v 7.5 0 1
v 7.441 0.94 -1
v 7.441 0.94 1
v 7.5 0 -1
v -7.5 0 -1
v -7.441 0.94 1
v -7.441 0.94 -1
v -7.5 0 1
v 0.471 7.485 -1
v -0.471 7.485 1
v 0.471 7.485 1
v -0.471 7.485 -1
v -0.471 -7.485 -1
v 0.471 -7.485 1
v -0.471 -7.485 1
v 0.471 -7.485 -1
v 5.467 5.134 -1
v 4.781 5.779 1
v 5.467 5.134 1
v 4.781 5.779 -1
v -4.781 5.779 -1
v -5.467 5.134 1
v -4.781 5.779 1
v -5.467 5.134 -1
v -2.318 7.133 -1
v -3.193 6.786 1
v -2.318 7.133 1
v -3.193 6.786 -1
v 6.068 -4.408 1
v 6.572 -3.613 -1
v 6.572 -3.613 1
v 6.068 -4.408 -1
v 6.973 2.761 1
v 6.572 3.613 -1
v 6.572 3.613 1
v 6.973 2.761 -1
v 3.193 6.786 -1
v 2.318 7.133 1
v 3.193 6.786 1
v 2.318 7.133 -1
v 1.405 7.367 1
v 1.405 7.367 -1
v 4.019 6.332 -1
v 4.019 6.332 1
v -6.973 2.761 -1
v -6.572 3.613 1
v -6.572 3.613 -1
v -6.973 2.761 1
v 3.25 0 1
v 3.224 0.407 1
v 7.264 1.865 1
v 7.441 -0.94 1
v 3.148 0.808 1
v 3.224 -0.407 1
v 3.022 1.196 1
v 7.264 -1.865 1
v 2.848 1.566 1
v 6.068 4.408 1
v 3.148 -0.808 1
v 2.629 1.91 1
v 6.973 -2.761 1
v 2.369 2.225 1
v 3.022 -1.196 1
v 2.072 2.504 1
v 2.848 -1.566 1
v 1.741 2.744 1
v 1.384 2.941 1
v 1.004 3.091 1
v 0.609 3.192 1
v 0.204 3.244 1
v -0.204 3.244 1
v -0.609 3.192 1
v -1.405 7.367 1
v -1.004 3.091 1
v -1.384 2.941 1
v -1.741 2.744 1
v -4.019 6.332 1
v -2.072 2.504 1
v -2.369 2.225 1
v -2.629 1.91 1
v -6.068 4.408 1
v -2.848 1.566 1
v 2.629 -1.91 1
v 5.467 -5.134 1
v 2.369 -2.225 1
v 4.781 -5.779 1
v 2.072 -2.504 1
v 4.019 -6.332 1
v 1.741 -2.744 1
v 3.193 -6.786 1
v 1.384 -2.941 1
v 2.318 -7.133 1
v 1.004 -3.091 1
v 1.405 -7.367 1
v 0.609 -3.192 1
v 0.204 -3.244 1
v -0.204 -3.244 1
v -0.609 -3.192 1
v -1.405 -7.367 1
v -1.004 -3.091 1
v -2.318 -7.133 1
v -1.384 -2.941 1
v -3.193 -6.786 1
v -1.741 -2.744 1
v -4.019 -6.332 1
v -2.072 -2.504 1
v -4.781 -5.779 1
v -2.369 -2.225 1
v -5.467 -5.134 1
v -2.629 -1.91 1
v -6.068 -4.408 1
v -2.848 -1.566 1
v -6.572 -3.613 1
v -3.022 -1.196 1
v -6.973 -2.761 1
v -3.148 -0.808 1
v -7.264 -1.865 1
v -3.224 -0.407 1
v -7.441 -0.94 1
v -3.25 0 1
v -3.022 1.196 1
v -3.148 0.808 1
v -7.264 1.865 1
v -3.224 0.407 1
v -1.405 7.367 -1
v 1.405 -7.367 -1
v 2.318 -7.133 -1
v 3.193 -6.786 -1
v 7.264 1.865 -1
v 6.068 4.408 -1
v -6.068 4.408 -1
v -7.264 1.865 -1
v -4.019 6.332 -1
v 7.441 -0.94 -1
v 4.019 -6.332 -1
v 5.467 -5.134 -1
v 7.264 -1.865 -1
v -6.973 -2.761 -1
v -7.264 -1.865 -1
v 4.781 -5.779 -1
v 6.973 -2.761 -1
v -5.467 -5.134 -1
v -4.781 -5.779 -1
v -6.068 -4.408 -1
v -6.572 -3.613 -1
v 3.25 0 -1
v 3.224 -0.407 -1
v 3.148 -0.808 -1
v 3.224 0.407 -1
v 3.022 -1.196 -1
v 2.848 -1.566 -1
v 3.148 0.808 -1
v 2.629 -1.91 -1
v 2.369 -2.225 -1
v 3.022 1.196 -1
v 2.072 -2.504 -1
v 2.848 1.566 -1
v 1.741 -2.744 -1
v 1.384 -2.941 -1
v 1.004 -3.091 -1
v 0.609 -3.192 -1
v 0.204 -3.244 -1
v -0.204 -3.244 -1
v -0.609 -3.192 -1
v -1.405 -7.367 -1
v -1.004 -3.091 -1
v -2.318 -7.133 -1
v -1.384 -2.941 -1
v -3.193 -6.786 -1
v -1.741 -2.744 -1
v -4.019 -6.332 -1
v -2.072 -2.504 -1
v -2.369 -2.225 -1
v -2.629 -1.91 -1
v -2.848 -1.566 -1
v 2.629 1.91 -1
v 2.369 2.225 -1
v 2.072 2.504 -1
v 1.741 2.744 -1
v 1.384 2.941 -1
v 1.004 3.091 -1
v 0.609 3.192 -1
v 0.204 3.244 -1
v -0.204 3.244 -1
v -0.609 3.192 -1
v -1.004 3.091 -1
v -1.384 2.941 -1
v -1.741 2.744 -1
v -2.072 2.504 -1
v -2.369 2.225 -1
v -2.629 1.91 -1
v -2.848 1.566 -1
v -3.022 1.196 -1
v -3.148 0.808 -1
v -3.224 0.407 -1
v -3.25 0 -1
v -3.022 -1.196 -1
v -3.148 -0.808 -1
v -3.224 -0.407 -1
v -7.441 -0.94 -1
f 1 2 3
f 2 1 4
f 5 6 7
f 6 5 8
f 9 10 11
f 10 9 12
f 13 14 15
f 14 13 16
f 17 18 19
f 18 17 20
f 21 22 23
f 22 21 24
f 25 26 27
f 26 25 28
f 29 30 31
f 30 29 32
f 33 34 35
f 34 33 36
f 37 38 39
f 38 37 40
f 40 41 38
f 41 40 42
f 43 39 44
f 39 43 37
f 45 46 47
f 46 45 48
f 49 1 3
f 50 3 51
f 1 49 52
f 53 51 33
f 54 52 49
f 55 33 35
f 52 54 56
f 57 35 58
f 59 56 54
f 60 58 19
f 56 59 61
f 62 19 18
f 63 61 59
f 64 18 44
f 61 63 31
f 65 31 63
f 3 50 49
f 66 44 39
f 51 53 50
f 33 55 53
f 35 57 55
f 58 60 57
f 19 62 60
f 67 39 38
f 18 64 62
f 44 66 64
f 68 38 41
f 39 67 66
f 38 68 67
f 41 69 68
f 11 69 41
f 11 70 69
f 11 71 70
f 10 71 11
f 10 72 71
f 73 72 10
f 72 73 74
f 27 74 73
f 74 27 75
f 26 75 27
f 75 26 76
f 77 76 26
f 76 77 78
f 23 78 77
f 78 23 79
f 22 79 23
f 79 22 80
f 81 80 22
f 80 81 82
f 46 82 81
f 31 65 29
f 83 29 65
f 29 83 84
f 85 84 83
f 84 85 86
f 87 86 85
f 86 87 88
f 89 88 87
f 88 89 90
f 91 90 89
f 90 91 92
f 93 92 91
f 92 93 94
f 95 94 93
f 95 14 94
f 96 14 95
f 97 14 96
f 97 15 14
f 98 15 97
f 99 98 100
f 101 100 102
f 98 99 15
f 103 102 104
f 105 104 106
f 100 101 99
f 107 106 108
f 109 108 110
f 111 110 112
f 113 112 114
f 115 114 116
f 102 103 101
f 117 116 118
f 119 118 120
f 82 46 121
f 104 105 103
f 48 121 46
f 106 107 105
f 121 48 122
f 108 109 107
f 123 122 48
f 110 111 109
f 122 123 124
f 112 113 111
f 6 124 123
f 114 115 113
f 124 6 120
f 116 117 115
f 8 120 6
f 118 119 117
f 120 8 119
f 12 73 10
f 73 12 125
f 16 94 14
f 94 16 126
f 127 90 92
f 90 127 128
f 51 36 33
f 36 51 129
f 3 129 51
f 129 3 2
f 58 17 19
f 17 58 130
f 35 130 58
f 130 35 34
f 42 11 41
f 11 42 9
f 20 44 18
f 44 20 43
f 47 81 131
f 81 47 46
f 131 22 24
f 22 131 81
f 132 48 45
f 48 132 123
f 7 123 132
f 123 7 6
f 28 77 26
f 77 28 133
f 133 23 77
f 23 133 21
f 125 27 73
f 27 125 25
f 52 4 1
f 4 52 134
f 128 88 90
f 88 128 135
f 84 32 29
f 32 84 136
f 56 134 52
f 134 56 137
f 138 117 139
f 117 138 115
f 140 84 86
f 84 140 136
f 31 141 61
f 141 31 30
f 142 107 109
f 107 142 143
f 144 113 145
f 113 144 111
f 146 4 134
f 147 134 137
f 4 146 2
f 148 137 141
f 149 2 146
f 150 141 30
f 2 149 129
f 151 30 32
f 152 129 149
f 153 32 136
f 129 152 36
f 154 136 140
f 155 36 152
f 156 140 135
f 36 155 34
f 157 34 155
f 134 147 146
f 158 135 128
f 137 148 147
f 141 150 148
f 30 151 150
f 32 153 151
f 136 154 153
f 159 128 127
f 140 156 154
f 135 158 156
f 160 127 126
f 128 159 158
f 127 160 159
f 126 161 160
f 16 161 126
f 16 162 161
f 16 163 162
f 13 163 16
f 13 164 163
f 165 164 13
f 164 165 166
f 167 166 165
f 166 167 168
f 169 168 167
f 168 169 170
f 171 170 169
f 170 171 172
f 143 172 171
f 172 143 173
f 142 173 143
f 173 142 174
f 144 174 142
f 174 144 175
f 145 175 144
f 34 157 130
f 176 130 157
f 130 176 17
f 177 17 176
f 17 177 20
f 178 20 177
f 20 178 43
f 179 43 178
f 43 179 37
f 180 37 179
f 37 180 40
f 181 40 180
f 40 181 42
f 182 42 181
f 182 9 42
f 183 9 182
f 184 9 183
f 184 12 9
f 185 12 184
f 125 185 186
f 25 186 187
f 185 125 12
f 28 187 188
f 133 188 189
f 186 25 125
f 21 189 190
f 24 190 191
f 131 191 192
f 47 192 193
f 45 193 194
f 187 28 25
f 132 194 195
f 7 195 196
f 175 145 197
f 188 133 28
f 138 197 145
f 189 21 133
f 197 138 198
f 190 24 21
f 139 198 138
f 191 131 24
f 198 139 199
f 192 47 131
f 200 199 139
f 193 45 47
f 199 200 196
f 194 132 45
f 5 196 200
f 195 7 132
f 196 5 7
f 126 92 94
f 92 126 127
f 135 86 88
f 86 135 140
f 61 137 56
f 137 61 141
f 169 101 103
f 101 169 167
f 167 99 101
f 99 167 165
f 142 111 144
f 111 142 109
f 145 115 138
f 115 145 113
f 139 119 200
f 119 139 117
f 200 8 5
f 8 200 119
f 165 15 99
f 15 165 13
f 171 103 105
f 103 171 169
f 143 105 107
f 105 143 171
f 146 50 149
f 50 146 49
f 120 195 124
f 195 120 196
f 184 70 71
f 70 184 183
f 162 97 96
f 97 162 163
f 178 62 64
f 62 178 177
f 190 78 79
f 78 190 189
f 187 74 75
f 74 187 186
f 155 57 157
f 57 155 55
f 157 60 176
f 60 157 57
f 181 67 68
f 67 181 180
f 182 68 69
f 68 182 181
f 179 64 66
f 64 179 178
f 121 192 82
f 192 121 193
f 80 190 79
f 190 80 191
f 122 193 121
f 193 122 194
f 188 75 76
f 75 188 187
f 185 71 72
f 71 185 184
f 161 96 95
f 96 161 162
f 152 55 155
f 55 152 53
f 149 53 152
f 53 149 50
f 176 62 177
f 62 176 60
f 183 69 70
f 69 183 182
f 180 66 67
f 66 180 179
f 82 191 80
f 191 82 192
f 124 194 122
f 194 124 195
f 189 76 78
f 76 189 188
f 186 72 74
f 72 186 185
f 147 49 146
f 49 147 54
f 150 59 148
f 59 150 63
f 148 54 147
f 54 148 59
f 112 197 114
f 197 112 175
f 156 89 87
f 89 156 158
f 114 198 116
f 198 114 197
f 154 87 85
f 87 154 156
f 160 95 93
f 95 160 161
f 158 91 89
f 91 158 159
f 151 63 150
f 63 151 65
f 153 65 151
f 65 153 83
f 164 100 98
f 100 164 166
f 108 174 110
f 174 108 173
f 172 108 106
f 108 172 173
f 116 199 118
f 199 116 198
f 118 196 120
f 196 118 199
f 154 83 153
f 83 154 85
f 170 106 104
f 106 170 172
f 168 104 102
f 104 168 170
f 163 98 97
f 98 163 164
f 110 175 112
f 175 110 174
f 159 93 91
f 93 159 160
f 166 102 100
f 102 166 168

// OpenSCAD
$fn = 50;


difference() {
	union() {
		translate(v = [0, 0, -1.0000000000]) {
			cylinder(h = 2, r = 7.5000000000);
		}
	}
	union() {
		translate(v = [0, 0, -100.0000000000]) {
			cylinder(h = 200, r = 3.2500000000);
		}
	}
}
